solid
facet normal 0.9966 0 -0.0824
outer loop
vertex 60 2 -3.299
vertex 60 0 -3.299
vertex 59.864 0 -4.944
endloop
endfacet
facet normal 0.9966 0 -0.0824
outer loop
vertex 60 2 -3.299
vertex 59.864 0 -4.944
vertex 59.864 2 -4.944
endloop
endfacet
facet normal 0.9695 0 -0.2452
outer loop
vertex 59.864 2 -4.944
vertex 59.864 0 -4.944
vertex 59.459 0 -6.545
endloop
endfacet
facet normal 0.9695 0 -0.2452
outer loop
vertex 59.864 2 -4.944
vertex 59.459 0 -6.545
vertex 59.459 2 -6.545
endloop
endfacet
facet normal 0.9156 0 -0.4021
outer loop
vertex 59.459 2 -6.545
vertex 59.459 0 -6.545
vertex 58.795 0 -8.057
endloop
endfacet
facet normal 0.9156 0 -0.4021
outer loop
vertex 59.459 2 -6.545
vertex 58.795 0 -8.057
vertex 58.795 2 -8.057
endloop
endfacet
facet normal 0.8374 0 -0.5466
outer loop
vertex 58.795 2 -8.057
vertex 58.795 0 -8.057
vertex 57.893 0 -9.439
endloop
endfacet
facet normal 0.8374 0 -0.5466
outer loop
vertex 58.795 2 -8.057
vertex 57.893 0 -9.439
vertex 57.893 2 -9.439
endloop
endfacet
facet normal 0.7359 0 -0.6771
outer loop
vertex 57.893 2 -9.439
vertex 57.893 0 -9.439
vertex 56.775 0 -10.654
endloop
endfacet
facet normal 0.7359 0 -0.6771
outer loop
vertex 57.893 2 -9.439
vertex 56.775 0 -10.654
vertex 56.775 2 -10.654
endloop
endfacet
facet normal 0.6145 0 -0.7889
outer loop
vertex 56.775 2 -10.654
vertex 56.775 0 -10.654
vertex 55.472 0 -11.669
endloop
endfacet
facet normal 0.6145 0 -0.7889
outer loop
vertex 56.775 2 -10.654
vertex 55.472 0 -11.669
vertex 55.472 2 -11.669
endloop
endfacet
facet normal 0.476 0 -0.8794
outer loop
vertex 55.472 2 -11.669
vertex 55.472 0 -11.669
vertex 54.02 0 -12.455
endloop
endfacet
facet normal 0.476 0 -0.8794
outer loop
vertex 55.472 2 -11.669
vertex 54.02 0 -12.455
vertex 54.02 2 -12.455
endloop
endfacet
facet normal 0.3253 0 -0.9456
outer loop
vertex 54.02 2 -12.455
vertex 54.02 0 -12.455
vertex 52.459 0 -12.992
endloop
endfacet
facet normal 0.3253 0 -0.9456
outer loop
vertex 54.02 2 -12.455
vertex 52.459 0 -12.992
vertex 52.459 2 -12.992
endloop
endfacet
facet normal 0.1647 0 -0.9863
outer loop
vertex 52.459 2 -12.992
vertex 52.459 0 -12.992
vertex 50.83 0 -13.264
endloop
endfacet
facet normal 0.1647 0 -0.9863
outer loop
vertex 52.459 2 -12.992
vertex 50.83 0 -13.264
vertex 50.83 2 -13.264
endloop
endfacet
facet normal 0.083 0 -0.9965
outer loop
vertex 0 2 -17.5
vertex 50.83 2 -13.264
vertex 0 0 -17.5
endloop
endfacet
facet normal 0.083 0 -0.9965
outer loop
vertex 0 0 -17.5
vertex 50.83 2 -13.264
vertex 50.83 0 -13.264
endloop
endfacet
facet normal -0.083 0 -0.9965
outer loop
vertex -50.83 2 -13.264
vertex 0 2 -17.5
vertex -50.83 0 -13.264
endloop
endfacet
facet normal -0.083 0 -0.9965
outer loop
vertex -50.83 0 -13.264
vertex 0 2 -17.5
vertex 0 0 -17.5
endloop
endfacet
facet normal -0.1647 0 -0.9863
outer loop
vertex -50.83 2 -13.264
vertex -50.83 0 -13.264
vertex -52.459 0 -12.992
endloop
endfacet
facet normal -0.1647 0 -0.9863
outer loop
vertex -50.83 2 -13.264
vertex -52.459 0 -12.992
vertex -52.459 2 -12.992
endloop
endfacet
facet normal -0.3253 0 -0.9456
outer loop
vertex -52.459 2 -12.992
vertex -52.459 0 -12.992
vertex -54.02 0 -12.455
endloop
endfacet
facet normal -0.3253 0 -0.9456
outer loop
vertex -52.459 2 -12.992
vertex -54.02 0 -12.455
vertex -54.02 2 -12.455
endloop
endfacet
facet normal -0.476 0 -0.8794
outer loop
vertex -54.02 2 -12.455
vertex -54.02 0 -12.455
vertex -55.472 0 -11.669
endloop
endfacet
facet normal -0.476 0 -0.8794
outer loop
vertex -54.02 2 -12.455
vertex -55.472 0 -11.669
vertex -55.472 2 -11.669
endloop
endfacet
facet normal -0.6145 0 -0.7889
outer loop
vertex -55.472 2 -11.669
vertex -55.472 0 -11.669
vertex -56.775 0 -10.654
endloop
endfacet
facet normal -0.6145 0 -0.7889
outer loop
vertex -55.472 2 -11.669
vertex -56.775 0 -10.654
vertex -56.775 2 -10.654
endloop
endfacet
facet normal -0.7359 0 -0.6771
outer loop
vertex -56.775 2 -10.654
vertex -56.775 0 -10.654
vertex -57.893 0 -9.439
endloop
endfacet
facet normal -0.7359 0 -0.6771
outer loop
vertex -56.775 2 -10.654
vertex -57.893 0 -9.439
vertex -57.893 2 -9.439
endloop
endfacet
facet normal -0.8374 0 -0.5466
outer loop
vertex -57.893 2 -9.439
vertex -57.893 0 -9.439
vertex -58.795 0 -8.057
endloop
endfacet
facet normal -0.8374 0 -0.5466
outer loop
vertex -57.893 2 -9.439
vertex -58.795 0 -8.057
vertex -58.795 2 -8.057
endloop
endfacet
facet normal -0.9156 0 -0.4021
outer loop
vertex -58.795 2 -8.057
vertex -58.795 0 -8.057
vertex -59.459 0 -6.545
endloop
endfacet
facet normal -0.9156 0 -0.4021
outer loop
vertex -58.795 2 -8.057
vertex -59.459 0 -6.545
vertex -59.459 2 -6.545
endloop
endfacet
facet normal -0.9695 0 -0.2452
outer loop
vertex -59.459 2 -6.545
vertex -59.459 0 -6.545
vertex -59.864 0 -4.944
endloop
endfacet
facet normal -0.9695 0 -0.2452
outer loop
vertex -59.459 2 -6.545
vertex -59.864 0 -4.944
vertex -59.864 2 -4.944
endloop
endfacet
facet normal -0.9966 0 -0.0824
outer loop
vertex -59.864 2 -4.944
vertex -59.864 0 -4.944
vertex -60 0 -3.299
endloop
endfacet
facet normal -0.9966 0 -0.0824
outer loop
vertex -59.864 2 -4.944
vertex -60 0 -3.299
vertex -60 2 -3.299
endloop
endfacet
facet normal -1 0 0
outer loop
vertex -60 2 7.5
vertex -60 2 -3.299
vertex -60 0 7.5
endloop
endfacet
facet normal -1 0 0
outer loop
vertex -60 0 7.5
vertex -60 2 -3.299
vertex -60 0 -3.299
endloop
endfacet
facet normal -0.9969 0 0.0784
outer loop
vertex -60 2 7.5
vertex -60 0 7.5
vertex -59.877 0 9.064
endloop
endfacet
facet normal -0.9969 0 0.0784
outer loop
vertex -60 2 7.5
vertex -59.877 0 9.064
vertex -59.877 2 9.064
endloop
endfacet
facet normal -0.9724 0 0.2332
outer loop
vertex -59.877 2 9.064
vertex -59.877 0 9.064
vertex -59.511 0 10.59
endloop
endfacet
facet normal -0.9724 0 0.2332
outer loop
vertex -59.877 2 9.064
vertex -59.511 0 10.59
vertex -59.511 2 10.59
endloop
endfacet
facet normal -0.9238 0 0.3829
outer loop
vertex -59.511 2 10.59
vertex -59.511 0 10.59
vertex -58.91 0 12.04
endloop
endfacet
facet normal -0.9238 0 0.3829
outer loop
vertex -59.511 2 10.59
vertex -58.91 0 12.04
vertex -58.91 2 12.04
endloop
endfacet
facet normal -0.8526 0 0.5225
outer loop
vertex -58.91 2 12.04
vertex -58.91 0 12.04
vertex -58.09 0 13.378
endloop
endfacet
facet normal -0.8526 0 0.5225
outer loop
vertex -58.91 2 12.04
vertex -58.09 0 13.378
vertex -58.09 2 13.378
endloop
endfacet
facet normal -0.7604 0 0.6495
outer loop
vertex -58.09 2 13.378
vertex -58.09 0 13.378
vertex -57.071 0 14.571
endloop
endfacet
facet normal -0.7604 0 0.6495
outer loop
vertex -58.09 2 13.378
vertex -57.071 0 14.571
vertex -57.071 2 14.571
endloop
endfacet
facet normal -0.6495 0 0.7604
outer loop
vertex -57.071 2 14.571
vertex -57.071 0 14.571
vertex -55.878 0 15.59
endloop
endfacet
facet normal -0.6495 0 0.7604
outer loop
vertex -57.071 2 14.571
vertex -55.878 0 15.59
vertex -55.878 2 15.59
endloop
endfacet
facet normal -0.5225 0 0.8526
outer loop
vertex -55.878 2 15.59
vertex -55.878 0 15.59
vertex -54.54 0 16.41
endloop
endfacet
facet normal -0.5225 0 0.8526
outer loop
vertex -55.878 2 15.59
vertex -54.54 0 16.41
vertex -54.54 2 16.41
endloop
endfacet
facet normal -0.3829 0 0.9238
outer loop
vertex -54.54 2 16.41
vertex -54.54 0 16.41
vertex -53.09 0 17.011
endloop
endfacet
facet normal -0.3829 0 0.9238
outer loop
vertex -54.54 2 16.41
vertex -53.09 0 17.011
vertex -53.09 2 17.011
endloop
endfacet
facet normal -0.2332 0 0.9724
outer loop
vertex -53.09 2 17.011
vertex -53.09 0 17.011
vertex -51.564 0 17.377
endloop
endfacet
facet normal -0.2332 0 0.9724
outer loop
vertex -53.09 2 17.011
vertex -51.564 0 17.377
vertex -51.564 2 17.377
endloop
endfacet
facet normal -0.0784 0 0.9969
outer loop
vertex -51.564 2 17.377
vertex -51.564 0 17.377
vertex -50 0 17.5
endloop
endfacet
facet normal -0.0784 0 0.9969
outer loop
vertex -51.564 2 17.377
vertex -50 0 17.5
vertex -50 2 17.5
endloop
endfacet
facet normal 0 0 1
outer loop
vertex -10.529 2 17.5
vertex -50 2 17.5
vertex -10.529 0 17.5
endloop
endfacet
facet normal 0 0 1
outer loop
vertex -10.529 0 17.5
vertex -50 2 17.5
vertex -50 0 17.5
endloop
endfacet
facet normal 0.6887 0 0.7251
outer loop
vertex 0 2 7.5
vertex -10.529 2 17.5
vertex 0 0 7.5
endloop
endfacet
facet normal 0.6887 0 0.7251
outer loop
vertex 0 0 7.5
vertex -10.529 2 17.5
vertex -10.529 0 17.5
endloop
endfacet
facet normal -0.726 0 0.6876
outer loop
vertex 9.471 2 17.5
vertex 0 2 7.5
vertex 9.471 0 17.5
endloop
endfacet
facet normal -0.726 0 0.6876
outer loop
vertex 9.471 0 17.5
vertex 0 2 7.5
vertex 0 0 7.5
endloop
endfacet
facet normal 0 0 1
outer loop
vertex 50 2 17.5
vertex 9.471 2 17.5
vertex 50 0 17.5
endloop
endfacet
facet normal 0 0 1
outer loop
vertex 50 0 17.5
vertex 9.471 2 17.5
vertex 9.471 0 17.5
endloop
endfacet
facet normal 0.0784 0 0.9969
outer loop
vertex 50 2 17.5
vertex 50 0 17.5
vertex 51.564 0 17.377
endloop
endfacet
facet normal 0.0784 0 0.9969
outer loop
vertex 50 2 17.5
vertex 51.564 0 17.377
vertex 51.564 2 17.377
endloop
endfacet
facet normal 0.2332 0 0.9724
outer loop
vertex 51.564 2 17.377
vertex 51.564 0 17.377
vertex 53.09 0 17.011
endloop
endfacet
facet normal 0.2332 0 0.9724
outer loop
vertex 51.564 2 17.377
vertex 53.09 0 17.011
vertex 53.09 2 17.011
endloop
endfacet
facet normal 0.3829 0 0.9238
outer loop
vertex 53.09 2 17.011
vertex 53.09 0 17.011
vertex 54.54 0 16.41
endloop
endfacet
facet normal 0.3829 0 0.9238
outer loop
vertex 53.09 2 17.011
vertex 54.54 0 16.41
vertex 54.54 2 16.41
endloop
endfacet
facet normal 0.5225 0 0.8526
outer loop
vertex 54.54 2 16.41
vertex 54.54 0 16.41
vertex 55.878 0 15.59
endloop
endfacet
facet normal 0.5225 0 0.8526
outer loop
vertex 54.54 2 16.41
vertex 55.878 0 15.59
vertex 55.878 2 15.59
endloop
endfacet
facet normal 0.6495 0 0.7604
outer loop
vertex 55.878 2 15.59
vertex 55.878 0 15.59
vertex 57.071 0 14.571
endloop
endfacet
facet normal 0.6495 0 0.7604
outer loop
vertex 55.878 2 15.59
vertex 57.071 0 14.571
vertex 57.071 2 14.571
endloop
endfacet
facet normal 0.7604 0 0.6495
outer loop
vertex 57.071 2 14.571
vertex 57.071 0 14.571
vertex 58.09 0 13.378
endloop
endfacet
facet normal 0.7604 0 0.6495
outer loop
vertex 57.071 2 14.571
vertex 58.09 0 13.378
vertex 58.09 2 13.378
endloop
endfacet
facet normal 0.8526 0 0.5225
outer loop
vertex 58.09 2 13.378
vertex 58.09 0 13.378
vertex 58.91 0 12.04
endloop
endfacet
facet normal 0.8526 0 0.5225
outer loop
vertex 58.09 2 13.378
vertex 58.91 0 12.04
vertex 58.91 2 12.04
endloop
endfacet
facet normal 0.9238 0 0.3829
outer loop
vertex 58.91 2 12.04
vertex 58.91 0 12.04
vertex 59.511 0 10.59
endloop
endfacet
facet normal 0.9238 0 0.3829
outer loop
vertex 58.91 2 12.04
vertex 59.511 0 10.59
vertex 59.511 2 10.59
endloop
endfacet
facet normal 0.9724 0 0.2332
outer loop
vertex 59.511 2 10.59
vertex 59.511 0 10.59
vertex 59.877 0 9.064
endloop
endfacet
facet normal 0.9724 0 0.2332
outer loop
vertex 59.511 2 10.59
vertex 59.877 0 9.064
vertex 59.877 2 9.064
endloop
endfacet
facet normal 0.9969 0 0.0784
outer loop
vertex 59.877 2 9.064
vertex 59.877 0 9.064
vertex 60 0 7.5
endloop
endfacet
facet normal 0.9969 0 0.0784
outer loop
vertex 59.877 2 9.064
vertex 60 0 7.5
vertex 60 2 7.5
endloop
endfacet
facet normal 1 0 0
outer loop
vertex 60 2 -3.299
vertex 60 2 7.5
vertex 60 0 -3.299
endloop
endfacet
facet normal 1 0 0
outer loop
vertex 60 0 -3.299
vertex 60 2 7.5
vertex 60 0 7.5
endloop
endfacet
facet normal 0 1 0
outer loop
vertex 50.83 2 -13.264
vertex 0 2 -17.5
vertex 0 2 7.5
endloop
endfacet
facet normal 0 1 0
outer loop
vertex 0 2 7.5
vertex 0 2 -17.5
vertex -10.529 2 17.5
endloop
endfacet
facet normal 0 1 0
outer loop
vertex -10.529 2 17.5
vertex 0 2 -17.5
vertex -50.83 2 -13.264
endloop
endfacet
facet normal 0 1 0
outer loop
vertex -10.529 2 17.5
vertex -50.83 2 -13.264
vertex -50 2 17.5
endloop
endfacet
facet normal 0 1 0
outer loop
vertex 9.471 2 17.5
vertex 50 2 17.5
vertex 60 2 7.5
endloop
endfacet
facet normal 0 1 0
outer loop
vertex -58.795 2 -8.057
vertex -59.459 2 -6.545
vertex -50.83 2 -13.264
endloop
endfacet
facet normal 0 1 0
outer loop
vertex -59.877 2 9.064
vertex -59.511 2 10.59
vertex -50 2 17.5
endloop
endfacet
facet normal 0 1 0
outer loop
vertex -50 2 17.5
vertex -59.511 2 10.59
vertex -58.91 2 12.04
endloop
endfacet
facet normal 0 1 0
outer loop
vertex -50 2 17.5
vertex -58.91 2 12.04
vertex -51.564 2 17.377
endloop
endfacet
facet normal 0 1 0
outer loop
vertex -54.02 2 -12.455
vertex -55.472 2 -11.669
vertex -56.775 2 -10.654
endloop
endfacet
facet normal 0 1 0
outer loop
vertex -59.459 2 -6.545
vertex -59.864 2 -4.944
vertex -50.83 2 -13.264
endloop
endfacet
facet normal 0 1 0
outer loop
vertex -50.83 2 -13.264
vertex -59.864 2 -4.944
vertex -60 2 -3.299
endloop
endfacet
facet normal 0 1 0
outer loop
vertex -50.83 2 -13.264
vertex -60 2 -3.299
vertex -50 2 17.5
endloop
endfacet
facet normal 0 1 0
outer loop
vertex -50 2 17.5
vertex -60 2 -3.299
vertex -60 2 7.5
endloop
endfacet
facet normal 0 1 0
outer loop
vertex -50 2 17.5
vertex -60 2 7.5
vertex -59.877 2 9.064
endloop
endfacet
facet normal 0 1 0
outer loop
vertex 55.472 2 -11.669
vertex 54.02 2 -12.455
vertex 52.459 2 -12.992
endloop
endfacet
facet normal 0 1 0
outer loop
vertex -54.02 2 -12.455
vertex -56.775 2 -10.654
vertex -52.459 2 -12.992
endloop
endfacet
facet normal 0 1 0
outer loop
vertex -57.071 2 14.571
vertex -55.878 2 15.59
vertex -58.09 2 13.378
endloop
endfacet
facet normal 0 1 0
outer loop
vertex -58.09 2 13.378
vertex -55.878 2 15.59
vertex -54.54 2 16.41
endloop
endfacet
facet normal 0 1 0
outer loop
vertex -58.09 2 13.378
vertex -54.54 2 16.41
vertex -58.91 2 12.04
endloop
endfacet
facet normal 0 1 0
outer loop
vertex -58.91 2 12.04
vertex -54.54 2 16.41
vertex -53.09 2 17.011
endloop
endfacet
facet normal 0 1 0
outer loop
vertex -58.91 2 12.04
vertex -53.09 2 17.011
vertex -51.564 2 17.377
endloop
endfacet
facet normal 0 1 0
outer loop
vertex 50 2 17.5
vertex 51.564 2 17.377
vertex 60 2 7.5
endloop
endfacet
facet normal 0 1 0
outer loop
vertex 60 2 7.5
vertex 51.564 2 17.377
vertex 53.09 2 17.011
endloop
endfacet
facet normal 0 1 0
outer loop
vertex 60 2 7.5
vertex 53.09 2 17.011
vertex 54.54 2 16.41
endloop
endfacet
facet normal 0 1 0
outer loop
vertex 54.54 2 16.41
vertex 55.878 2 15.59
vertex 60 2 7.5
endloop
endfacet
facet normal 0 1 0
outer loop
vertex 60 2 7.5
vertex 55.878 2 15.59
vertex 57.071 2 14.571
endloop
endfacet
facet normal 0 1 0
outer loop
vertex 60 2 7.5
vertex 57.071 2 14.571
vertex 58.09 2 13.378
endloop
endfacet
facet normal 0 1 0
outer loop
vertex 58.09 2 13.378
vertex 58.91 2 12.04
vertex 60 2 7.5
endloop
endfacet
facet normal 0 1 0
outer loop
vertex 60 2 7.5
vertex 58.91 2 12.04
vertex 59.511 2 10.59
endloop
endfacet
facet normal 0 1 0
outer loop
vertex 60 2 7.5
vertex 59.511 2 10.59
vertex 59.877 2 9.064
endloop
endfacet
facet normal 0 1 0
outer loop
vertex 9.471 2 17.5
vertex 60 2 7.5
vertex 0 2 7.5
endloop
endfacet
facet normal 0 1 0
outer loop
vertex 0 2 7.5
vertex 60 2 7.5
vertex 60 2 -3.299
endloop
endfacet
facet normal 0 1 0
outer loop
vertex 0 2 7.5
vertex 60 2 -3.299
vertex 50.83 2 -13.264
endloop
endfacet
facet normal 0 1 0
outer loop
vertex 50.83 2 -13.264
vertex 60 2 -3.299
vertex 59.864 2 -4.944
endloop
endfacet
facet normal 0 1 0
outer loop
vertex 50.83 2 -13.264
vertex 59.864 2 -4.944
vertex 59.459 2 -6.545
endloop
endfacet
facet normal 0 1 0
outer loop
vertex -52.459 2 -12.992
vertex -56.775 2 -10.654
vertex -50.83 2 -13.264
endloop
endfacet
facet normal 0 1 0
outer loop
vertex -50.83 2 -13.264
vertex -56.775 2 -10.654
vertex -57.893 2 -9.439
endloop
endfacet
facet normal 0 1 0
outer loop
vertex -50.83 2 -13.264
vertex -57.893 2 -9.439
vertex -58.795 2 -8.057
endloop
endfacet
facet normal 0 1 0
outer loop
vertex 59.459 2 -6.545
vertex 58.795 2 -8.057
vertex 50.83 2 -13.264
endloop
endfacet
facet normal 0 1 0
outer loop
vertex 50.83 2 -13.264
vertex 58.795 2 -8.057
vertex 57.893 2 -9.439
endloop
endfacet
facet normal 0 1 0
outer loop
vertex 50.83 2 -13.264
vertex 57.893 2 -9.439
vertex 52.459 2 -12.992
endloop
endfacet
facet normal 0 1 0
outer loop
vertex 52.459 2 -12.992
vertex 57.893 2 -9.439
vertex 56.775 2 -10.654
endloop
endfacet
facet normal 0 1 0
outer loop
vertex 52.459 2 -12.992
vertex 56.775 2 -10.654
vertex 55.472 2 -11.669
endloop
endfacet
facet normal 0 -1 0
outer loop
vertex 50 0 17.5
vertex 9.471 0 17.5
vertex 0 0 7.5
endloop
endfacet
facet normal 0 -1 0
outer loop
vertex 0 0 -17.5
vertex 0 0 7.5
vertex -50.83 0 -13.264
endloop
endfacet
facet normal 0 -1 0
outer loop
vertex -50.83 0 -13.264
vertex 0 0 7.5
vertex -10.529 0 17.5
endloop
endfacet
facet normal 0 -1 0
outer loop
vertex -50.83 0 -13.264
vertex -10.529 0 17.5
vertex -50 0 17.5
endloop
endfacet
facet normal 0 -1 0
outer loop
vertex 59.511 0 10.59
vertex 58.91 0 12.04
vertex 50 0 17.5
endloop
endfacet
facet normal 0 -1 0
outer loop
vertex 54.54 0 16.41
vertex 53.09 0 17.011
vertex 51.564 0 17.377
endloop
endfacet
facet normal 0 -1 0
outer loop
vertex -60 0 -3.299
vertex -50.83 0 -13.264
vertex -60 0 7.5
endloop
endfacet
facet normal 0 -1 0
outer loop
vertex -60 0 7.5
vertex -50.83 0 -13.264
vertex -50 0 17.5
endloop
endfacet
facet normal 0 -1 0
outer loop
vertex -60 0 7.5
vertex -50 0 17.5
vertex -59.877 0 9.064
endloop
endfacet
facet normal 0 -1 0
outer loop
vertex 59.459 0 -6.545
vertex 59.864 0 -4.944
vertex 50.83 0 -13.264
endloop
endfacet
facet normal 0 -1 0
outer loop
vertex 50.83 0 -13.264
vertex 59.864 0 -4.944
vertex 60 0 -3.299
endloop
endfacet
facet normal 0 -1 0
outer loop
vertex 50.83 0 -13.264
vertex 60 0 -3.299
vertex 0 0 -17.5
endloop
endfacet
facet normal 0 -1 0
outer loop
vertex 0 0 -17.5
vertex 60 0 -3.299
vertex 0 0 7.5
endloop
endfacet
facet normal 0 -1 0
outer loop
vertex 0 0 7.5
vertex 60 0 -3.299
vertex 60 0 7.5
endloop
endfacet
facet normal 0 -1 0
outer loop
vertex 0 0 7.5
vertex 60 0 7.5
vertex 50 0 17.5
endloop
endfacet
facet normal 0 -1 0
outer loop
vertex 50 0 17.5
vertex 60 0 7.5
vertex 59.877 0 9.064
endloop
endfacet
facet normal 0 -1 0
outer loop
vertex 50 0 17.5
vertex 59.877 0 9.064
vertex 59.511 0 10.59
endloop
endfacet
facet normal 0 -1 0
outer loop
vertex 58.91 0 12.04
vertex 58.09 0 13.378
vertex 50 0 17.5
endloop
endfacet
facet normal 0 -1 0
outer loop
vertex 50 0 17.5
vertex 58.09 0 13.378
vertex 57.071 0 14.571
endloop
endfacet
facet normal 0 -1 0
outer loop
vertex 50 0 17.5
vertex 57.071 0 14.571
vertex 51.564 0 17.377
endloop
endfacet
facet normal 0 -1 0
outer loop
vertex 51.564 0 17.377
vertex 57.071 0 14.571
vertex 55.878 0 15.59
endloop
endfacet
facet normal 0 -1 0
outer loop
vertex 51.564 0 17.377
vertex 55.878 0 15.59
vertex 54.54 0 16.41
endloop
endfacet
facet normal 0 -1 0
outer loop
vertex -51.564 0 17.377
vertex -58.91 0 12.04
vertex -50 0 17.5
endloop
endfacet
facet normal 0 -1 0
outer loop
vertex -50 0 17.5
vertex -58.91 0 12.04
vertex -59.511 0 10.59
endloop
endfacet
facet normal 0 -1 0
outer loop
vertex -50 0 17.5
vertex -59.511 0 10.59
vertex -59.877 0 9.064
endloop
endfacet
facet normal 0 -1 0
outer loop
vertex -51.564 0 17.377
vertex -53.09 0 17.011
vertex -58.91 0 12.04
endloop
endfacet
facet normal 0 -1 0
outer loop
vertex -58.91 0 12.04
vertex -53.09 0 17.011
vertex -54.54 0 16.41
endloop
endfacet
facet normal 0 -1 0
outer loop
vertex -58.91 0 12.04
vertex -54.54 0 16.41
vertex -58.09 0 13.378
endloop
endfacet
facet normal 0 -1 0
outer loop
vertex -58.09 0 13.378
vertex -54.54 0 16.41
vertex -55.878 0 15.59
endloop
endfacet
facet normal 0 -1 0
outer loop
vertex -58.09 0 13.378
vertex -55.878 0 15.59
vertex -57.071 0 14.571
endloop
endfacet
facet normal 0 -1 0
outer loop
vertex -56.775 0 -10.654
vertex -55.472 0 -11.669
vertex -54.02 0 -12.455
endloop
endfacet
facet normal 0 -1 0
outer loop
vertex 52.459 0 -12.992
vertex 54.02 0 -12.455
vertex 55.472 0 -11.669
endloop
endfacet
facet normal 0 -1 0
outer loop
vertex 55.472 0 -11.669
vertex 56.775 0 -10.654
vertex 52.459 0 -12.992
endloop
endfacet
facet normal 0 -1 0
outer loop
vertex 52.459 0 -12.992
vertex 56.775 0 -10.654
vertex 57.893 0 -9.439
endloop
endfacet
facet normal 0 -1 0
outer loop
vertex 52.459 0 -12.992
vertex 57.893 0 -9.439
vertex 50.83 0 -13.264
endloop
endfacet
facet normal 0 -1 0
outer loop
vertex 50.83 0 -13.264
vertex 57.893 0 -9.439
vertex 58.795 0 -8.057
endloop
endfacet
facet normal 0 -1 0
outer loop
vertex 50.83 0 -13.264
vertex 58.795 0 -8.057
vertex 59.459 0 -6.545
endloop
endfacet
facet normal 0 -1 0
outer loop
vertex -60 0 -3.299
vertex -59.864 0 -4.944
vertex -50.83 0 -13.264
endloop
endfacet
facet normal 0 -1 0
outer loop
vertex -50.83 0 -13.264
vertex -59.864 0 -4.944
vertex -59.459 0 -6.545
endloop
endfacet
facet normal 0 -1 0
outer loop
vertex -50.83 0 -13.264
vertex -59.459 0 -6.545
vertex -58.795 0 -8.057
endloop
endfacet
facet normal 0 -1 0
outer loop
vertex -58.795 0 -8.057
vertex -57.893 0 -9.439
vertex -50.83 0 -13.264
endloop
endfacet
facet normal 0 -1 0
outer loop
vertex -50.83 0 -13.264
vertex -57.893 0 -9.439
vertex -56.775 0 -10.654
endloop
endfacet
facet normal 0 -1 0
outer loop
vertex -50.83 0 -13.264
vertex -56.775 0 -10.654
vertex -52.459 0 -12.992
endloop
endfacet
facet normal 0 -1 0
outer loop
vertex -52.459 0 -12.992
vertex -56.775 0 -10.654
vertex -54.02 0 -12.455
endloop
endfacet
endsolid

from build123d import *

# Parameters (mm, degrees)
BOSS_EXTRUDE1_DEPTH = 2


with BuildPart() as part:
    # Sketch1 → Boss-Extrude1 (new body)
    with BuildSketch(Plane(origin=(0, 0, 0), x_dir=(1, 0, 0), z_dir=(0, 1, 0))):
        with BuildLine():
            Line((-50.830454799, 13.264128767), (0, 17.5))
            Line((0, 17.5), (50.830454799, 13.264128767))
            ThreePointArc((50.830454799, 13.264128767), (57.358822867, 10.069766074), (60, 3.298671184))
            Line((60, 3.298671184), (60, -7.5))
            ThreePointArc((60, -7.5), (57.071067812, -14.571067812), (50, -17.5))
            Line((50, -17.5), (9.470954357, -17.5))
            Line((9.470954357, -17.5), (0, -7.5))
            Line((0, -7.5), (-10.529045643, -17.5))
            Line((-10.529045643, -17.5), (-50, -17.5))
            ThreePointArc((-50, -17.5), (-57.071067812, -14.571067812), (-60, -7.5))
            Line((-60, -7.5), (-60, 3.298671184))
            ThreePointArc((-60, 3.298671184), (-57.358822867, 10.069766074), (-50.830454799, 13.264128767))
        make_face()
    extrude(amount=BOSS_EXTRUDE1_DEPTH)


solid = part.part
